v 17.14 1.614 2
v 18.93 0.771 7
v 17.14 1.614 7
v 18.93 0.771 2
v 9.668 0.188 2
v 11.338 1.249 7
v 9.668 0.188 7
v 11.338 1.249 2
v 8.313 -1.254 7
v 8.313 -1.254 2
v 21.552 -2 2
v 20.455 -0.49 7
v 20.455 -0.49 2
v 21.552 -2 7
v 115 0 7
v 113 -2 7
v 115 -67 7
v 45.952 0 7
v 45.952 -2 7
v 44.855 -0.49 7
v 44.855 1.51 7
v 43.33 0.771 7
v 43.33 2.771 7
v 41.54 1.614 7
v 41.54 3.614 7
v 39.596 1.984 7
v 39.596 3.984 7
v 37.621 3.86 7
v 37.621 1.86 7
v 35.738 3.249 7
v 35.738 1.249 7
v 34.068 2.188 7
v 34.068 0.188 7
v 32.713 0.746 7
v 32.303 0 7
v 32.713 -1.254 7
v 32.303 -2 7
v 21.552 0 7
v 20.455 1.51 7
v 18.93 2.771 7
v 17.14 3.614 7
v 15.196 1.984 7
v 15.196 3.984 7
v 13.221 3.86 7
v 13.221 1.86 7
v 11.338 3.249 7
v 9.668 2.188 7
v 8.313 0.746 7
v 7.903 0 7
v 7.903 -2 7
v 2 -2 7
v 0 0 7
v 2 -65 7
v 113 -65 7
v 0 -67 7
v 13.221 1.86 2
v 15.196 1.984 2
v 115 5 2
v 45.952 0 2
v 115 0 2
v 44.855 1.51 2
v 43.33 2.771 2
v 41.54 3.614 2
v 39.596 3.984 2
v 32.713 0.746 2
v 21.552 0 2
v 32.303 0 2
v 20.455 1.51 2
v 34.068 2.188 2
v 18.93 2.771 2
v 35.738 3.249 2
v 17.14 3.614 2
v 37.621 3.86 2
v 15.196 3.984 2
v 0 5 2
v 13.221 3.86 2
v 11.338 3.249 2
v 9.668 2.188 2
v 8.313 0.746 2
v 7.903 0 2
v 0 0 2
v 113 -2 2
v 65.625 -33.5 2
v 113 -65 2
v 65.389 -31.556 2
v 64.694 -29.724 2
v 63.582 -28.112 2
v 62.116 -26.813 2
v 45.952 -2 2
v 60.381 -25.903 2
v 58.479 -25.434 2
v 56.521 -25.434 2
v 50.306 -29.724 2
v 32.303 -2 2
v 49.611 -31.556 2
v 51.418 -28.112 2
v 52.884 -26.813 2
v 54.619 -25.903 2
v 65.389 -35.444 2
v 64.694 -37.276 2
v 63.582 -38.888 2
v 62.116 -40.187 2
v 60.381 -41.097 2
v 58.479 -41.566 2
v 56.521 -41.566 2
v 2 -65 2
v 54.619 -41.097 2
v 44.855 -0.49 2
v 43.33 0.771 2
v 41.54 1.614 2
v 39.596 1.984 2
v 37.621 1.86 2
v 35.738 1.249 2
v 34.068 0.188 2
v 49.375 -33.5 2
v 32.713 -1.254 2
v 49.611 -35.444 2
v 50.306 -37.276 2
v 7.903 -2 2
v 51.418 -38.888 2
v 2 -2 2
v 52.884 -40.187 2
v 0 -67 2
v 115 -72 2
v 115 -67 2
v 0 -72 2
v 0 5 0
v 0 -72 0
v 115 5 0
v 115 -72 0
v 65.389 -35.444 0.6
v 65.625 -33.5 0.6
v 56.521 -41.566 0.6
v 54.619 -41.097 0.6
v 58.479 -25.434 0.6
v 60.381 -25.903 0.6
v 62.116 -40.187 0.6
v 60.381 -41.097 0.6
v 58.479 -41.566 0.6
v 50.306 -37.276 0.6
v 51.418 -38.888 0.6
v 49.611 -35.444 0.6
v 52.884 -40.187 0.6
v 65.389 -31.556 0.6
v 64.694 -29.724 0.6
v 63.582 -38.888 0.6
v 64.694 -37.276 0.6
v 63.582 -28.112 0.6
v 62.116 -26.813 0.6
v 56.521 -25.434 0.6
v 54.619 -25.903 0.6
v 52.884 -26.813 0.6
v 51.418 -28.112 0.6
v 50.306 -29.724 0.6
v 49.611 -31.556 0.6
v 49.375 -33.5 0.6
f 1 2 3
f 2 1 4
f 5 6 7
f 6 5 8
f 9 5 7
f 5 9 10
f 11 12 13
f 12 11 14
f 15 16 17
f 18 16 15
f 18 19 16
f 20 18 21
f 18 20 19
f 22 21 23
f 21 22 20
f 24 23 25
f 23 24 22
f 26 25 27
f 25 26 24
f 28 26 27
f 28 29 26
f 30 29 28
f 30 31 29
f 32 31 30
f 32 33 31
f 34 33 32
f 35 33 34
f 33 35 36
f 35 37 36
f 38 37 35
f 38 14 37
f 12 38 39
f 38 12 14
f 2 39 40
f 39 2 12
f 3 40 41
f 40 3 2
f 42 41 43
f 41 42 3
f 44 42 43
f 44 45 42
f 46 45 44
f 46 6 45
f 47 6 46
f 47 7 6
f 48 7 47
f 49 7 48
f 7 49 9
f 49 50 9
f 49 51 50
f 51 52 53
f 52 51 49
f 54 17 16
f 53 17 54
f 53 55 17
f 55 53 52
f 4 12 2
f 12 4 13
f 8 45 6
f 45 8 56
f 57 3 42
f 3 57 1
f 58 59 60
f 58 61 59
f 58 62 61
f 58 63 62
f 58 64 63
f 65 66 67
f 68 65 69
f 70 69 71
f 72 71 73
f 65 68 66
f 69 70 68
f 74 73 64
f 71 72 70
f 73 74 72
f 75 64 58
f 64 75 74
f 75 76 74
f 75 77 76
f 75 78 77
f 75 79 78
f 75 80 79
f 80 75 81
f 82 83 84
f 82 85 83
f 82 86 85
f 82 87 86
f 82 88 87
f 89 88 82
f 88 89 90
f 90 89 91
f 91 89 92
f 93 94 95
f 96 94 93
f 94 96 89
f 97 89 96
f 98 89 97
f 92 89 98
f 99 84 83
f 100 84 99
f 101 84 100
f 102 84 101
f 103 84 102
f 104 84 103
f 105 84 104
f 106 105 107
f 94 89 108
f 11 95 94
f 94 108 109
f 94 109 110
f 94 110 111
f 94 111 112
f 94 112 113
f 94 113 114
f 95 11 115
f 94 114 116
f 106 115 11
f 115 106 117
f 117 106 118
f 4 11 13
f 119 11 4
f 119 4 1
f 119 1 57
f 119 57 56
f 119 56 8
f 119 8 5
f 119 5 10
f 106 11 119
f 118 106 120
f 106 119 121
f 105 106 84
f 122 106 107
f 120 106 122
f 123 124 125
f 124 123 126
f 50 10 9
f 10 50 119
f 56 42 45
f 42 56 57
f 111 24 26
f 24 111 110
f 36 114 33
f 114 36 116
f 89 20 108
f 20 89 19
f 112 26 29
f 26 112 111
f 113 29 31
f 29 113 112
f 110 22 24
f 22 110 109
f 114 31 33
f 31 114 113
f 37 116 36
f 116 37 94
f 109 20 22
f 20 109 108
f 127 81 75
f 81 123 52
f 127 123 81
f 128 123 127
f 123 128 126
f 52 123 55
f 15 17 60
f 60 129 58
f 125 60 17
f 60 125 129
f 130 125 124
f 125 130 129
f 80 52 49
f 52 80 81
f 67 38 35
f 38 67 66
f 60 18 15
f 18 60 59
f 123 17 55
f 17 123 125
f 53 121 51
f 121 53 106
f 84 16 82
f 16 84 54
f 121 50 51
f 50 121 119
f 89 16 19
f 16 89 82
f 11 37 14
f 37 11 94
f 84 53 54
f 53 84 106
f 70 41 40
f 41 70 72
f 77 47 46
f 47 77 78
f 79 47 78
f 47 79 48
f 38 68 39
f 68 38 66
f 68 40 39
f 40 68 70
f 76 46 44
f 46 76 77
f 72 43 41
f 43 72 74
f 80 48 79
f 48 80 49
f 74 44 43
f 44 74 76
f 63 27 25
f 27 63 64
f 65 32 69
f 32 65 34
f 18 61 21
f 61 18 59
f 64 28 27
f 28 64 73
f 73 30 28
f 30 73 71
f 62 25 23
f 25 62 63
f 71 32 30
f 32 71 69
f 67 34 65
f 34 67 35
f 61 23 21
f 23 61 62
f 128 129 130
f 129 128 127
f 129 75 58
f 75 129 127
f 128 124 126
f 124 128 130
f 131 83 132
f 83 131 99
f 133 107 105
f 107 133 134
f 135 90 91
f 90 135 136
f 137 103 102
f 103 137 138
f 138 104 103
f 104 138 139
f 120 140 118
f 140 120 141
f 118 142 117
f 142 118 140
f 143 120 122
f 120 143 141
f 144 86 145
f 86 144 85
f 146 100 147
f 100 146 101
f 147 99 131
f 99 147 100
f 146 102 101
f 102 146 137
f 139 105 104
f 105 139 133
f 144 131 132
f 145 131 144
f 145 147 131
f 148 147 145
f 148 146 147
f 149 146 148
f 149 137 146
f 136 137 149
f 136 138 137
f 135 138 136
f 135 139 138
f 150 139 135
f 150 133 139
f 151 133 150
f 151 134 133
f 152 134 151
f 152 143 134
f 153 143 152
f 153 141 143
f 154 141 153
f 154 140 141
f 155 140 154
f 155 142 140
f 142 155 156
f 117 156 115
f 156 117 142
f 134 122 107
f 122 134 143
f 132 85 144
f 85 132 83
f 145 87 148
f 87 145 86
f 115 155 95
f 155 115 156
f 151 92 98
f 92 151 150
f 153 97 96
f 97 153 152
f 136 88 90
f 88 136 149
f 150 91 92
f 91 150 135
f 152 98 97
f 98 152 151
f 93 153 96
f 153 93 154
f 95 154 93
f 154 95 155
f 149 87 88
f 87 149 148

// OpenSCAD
length = 110;
width = 62;
height = 2;
rimHeight = 5;
rimThickness = 2;
notchLength = 25;
//Based on washer size:
washerDiameter = 16.25;
washerHeight = 1.4;
rimPadding = 1;
totalHeight = height + rimHeight;

totalLength = length + rimThickness * 2 + rimPadding;
totalWidth = width + rimThickness * 2 + rimPadding;
extraLidForCircles = 5;

prestigeTokenDiameter = 15.18 + .5;
prestigeTokenOffset = 4;
prestigeTokenHeight = 2.19 + .5;

moneyTokenDiameter = 16.7 + .5;
moneyTokenOffset = 4;
moneyTokenHeight = 2.05 + .5;

chiefTokenDiameter = 31.5 + .5;
chiefTokenOffset = 4;

roundedTipDiameter = 15.29 + .5;
roundedTipOffset = 2;

bodyWidth = 15.29 + .5;
bodyLength = 8.65 + .5;

baseWidth = 18.9 + .5;
baseLength = 8.3 + .5;

mirror([0, 1, 0])
union()
{
    difference() {
        translate([0, -extraLidForCircles, 0])
            cube([totalLength, totalWidth + 2 * extraLidForCircles, height]);
        translate([totalLength/2, totalWidth/2, height - washerHeight])
            cylinder(washerHeight, d=washerDiameter);
    }
    
    difference() {
        translate([0, 0, height])
            cube([totalLength, totalWidth, rimHeight]);
        translate([rimThickness, rimThickness, height])
            cube([length + rimPadding, width + rimPadding, rimHeight]);
        LeftLengthCircles();
    }
    
    difference(){
        union()
        {
            translate([0, -rimThickness, 0])
                LeftLengthCircles();
        }
        translate([0, 0, height])
            cube([totalLength, totalWidth, rimHeight]);
        LeftLengthCircles();
    }
}


module LeftLengthCircles()
{
    spaceBetweenCircles = 2;
  
   translate([spaceBetweenCircles + rimThickness + rimPadding, 0, 0])
        Grave();
    translate([(spaceBetweenCircles + rimThickness + rimPadding) * 2 + baseWidth, 0, 0])
        Grave();      
    
}

module Grave()
{
    padding = (baseWidth - bodyWidth) / 2;
    translate(
        [
            roundedTipDiameter/2 + padding,  
            roundedTipDiameter/2 - roundedTipOffset,
            height
        ])
        cylinder(rimHeight, d=roundedTipDiameter);

    
   
}
